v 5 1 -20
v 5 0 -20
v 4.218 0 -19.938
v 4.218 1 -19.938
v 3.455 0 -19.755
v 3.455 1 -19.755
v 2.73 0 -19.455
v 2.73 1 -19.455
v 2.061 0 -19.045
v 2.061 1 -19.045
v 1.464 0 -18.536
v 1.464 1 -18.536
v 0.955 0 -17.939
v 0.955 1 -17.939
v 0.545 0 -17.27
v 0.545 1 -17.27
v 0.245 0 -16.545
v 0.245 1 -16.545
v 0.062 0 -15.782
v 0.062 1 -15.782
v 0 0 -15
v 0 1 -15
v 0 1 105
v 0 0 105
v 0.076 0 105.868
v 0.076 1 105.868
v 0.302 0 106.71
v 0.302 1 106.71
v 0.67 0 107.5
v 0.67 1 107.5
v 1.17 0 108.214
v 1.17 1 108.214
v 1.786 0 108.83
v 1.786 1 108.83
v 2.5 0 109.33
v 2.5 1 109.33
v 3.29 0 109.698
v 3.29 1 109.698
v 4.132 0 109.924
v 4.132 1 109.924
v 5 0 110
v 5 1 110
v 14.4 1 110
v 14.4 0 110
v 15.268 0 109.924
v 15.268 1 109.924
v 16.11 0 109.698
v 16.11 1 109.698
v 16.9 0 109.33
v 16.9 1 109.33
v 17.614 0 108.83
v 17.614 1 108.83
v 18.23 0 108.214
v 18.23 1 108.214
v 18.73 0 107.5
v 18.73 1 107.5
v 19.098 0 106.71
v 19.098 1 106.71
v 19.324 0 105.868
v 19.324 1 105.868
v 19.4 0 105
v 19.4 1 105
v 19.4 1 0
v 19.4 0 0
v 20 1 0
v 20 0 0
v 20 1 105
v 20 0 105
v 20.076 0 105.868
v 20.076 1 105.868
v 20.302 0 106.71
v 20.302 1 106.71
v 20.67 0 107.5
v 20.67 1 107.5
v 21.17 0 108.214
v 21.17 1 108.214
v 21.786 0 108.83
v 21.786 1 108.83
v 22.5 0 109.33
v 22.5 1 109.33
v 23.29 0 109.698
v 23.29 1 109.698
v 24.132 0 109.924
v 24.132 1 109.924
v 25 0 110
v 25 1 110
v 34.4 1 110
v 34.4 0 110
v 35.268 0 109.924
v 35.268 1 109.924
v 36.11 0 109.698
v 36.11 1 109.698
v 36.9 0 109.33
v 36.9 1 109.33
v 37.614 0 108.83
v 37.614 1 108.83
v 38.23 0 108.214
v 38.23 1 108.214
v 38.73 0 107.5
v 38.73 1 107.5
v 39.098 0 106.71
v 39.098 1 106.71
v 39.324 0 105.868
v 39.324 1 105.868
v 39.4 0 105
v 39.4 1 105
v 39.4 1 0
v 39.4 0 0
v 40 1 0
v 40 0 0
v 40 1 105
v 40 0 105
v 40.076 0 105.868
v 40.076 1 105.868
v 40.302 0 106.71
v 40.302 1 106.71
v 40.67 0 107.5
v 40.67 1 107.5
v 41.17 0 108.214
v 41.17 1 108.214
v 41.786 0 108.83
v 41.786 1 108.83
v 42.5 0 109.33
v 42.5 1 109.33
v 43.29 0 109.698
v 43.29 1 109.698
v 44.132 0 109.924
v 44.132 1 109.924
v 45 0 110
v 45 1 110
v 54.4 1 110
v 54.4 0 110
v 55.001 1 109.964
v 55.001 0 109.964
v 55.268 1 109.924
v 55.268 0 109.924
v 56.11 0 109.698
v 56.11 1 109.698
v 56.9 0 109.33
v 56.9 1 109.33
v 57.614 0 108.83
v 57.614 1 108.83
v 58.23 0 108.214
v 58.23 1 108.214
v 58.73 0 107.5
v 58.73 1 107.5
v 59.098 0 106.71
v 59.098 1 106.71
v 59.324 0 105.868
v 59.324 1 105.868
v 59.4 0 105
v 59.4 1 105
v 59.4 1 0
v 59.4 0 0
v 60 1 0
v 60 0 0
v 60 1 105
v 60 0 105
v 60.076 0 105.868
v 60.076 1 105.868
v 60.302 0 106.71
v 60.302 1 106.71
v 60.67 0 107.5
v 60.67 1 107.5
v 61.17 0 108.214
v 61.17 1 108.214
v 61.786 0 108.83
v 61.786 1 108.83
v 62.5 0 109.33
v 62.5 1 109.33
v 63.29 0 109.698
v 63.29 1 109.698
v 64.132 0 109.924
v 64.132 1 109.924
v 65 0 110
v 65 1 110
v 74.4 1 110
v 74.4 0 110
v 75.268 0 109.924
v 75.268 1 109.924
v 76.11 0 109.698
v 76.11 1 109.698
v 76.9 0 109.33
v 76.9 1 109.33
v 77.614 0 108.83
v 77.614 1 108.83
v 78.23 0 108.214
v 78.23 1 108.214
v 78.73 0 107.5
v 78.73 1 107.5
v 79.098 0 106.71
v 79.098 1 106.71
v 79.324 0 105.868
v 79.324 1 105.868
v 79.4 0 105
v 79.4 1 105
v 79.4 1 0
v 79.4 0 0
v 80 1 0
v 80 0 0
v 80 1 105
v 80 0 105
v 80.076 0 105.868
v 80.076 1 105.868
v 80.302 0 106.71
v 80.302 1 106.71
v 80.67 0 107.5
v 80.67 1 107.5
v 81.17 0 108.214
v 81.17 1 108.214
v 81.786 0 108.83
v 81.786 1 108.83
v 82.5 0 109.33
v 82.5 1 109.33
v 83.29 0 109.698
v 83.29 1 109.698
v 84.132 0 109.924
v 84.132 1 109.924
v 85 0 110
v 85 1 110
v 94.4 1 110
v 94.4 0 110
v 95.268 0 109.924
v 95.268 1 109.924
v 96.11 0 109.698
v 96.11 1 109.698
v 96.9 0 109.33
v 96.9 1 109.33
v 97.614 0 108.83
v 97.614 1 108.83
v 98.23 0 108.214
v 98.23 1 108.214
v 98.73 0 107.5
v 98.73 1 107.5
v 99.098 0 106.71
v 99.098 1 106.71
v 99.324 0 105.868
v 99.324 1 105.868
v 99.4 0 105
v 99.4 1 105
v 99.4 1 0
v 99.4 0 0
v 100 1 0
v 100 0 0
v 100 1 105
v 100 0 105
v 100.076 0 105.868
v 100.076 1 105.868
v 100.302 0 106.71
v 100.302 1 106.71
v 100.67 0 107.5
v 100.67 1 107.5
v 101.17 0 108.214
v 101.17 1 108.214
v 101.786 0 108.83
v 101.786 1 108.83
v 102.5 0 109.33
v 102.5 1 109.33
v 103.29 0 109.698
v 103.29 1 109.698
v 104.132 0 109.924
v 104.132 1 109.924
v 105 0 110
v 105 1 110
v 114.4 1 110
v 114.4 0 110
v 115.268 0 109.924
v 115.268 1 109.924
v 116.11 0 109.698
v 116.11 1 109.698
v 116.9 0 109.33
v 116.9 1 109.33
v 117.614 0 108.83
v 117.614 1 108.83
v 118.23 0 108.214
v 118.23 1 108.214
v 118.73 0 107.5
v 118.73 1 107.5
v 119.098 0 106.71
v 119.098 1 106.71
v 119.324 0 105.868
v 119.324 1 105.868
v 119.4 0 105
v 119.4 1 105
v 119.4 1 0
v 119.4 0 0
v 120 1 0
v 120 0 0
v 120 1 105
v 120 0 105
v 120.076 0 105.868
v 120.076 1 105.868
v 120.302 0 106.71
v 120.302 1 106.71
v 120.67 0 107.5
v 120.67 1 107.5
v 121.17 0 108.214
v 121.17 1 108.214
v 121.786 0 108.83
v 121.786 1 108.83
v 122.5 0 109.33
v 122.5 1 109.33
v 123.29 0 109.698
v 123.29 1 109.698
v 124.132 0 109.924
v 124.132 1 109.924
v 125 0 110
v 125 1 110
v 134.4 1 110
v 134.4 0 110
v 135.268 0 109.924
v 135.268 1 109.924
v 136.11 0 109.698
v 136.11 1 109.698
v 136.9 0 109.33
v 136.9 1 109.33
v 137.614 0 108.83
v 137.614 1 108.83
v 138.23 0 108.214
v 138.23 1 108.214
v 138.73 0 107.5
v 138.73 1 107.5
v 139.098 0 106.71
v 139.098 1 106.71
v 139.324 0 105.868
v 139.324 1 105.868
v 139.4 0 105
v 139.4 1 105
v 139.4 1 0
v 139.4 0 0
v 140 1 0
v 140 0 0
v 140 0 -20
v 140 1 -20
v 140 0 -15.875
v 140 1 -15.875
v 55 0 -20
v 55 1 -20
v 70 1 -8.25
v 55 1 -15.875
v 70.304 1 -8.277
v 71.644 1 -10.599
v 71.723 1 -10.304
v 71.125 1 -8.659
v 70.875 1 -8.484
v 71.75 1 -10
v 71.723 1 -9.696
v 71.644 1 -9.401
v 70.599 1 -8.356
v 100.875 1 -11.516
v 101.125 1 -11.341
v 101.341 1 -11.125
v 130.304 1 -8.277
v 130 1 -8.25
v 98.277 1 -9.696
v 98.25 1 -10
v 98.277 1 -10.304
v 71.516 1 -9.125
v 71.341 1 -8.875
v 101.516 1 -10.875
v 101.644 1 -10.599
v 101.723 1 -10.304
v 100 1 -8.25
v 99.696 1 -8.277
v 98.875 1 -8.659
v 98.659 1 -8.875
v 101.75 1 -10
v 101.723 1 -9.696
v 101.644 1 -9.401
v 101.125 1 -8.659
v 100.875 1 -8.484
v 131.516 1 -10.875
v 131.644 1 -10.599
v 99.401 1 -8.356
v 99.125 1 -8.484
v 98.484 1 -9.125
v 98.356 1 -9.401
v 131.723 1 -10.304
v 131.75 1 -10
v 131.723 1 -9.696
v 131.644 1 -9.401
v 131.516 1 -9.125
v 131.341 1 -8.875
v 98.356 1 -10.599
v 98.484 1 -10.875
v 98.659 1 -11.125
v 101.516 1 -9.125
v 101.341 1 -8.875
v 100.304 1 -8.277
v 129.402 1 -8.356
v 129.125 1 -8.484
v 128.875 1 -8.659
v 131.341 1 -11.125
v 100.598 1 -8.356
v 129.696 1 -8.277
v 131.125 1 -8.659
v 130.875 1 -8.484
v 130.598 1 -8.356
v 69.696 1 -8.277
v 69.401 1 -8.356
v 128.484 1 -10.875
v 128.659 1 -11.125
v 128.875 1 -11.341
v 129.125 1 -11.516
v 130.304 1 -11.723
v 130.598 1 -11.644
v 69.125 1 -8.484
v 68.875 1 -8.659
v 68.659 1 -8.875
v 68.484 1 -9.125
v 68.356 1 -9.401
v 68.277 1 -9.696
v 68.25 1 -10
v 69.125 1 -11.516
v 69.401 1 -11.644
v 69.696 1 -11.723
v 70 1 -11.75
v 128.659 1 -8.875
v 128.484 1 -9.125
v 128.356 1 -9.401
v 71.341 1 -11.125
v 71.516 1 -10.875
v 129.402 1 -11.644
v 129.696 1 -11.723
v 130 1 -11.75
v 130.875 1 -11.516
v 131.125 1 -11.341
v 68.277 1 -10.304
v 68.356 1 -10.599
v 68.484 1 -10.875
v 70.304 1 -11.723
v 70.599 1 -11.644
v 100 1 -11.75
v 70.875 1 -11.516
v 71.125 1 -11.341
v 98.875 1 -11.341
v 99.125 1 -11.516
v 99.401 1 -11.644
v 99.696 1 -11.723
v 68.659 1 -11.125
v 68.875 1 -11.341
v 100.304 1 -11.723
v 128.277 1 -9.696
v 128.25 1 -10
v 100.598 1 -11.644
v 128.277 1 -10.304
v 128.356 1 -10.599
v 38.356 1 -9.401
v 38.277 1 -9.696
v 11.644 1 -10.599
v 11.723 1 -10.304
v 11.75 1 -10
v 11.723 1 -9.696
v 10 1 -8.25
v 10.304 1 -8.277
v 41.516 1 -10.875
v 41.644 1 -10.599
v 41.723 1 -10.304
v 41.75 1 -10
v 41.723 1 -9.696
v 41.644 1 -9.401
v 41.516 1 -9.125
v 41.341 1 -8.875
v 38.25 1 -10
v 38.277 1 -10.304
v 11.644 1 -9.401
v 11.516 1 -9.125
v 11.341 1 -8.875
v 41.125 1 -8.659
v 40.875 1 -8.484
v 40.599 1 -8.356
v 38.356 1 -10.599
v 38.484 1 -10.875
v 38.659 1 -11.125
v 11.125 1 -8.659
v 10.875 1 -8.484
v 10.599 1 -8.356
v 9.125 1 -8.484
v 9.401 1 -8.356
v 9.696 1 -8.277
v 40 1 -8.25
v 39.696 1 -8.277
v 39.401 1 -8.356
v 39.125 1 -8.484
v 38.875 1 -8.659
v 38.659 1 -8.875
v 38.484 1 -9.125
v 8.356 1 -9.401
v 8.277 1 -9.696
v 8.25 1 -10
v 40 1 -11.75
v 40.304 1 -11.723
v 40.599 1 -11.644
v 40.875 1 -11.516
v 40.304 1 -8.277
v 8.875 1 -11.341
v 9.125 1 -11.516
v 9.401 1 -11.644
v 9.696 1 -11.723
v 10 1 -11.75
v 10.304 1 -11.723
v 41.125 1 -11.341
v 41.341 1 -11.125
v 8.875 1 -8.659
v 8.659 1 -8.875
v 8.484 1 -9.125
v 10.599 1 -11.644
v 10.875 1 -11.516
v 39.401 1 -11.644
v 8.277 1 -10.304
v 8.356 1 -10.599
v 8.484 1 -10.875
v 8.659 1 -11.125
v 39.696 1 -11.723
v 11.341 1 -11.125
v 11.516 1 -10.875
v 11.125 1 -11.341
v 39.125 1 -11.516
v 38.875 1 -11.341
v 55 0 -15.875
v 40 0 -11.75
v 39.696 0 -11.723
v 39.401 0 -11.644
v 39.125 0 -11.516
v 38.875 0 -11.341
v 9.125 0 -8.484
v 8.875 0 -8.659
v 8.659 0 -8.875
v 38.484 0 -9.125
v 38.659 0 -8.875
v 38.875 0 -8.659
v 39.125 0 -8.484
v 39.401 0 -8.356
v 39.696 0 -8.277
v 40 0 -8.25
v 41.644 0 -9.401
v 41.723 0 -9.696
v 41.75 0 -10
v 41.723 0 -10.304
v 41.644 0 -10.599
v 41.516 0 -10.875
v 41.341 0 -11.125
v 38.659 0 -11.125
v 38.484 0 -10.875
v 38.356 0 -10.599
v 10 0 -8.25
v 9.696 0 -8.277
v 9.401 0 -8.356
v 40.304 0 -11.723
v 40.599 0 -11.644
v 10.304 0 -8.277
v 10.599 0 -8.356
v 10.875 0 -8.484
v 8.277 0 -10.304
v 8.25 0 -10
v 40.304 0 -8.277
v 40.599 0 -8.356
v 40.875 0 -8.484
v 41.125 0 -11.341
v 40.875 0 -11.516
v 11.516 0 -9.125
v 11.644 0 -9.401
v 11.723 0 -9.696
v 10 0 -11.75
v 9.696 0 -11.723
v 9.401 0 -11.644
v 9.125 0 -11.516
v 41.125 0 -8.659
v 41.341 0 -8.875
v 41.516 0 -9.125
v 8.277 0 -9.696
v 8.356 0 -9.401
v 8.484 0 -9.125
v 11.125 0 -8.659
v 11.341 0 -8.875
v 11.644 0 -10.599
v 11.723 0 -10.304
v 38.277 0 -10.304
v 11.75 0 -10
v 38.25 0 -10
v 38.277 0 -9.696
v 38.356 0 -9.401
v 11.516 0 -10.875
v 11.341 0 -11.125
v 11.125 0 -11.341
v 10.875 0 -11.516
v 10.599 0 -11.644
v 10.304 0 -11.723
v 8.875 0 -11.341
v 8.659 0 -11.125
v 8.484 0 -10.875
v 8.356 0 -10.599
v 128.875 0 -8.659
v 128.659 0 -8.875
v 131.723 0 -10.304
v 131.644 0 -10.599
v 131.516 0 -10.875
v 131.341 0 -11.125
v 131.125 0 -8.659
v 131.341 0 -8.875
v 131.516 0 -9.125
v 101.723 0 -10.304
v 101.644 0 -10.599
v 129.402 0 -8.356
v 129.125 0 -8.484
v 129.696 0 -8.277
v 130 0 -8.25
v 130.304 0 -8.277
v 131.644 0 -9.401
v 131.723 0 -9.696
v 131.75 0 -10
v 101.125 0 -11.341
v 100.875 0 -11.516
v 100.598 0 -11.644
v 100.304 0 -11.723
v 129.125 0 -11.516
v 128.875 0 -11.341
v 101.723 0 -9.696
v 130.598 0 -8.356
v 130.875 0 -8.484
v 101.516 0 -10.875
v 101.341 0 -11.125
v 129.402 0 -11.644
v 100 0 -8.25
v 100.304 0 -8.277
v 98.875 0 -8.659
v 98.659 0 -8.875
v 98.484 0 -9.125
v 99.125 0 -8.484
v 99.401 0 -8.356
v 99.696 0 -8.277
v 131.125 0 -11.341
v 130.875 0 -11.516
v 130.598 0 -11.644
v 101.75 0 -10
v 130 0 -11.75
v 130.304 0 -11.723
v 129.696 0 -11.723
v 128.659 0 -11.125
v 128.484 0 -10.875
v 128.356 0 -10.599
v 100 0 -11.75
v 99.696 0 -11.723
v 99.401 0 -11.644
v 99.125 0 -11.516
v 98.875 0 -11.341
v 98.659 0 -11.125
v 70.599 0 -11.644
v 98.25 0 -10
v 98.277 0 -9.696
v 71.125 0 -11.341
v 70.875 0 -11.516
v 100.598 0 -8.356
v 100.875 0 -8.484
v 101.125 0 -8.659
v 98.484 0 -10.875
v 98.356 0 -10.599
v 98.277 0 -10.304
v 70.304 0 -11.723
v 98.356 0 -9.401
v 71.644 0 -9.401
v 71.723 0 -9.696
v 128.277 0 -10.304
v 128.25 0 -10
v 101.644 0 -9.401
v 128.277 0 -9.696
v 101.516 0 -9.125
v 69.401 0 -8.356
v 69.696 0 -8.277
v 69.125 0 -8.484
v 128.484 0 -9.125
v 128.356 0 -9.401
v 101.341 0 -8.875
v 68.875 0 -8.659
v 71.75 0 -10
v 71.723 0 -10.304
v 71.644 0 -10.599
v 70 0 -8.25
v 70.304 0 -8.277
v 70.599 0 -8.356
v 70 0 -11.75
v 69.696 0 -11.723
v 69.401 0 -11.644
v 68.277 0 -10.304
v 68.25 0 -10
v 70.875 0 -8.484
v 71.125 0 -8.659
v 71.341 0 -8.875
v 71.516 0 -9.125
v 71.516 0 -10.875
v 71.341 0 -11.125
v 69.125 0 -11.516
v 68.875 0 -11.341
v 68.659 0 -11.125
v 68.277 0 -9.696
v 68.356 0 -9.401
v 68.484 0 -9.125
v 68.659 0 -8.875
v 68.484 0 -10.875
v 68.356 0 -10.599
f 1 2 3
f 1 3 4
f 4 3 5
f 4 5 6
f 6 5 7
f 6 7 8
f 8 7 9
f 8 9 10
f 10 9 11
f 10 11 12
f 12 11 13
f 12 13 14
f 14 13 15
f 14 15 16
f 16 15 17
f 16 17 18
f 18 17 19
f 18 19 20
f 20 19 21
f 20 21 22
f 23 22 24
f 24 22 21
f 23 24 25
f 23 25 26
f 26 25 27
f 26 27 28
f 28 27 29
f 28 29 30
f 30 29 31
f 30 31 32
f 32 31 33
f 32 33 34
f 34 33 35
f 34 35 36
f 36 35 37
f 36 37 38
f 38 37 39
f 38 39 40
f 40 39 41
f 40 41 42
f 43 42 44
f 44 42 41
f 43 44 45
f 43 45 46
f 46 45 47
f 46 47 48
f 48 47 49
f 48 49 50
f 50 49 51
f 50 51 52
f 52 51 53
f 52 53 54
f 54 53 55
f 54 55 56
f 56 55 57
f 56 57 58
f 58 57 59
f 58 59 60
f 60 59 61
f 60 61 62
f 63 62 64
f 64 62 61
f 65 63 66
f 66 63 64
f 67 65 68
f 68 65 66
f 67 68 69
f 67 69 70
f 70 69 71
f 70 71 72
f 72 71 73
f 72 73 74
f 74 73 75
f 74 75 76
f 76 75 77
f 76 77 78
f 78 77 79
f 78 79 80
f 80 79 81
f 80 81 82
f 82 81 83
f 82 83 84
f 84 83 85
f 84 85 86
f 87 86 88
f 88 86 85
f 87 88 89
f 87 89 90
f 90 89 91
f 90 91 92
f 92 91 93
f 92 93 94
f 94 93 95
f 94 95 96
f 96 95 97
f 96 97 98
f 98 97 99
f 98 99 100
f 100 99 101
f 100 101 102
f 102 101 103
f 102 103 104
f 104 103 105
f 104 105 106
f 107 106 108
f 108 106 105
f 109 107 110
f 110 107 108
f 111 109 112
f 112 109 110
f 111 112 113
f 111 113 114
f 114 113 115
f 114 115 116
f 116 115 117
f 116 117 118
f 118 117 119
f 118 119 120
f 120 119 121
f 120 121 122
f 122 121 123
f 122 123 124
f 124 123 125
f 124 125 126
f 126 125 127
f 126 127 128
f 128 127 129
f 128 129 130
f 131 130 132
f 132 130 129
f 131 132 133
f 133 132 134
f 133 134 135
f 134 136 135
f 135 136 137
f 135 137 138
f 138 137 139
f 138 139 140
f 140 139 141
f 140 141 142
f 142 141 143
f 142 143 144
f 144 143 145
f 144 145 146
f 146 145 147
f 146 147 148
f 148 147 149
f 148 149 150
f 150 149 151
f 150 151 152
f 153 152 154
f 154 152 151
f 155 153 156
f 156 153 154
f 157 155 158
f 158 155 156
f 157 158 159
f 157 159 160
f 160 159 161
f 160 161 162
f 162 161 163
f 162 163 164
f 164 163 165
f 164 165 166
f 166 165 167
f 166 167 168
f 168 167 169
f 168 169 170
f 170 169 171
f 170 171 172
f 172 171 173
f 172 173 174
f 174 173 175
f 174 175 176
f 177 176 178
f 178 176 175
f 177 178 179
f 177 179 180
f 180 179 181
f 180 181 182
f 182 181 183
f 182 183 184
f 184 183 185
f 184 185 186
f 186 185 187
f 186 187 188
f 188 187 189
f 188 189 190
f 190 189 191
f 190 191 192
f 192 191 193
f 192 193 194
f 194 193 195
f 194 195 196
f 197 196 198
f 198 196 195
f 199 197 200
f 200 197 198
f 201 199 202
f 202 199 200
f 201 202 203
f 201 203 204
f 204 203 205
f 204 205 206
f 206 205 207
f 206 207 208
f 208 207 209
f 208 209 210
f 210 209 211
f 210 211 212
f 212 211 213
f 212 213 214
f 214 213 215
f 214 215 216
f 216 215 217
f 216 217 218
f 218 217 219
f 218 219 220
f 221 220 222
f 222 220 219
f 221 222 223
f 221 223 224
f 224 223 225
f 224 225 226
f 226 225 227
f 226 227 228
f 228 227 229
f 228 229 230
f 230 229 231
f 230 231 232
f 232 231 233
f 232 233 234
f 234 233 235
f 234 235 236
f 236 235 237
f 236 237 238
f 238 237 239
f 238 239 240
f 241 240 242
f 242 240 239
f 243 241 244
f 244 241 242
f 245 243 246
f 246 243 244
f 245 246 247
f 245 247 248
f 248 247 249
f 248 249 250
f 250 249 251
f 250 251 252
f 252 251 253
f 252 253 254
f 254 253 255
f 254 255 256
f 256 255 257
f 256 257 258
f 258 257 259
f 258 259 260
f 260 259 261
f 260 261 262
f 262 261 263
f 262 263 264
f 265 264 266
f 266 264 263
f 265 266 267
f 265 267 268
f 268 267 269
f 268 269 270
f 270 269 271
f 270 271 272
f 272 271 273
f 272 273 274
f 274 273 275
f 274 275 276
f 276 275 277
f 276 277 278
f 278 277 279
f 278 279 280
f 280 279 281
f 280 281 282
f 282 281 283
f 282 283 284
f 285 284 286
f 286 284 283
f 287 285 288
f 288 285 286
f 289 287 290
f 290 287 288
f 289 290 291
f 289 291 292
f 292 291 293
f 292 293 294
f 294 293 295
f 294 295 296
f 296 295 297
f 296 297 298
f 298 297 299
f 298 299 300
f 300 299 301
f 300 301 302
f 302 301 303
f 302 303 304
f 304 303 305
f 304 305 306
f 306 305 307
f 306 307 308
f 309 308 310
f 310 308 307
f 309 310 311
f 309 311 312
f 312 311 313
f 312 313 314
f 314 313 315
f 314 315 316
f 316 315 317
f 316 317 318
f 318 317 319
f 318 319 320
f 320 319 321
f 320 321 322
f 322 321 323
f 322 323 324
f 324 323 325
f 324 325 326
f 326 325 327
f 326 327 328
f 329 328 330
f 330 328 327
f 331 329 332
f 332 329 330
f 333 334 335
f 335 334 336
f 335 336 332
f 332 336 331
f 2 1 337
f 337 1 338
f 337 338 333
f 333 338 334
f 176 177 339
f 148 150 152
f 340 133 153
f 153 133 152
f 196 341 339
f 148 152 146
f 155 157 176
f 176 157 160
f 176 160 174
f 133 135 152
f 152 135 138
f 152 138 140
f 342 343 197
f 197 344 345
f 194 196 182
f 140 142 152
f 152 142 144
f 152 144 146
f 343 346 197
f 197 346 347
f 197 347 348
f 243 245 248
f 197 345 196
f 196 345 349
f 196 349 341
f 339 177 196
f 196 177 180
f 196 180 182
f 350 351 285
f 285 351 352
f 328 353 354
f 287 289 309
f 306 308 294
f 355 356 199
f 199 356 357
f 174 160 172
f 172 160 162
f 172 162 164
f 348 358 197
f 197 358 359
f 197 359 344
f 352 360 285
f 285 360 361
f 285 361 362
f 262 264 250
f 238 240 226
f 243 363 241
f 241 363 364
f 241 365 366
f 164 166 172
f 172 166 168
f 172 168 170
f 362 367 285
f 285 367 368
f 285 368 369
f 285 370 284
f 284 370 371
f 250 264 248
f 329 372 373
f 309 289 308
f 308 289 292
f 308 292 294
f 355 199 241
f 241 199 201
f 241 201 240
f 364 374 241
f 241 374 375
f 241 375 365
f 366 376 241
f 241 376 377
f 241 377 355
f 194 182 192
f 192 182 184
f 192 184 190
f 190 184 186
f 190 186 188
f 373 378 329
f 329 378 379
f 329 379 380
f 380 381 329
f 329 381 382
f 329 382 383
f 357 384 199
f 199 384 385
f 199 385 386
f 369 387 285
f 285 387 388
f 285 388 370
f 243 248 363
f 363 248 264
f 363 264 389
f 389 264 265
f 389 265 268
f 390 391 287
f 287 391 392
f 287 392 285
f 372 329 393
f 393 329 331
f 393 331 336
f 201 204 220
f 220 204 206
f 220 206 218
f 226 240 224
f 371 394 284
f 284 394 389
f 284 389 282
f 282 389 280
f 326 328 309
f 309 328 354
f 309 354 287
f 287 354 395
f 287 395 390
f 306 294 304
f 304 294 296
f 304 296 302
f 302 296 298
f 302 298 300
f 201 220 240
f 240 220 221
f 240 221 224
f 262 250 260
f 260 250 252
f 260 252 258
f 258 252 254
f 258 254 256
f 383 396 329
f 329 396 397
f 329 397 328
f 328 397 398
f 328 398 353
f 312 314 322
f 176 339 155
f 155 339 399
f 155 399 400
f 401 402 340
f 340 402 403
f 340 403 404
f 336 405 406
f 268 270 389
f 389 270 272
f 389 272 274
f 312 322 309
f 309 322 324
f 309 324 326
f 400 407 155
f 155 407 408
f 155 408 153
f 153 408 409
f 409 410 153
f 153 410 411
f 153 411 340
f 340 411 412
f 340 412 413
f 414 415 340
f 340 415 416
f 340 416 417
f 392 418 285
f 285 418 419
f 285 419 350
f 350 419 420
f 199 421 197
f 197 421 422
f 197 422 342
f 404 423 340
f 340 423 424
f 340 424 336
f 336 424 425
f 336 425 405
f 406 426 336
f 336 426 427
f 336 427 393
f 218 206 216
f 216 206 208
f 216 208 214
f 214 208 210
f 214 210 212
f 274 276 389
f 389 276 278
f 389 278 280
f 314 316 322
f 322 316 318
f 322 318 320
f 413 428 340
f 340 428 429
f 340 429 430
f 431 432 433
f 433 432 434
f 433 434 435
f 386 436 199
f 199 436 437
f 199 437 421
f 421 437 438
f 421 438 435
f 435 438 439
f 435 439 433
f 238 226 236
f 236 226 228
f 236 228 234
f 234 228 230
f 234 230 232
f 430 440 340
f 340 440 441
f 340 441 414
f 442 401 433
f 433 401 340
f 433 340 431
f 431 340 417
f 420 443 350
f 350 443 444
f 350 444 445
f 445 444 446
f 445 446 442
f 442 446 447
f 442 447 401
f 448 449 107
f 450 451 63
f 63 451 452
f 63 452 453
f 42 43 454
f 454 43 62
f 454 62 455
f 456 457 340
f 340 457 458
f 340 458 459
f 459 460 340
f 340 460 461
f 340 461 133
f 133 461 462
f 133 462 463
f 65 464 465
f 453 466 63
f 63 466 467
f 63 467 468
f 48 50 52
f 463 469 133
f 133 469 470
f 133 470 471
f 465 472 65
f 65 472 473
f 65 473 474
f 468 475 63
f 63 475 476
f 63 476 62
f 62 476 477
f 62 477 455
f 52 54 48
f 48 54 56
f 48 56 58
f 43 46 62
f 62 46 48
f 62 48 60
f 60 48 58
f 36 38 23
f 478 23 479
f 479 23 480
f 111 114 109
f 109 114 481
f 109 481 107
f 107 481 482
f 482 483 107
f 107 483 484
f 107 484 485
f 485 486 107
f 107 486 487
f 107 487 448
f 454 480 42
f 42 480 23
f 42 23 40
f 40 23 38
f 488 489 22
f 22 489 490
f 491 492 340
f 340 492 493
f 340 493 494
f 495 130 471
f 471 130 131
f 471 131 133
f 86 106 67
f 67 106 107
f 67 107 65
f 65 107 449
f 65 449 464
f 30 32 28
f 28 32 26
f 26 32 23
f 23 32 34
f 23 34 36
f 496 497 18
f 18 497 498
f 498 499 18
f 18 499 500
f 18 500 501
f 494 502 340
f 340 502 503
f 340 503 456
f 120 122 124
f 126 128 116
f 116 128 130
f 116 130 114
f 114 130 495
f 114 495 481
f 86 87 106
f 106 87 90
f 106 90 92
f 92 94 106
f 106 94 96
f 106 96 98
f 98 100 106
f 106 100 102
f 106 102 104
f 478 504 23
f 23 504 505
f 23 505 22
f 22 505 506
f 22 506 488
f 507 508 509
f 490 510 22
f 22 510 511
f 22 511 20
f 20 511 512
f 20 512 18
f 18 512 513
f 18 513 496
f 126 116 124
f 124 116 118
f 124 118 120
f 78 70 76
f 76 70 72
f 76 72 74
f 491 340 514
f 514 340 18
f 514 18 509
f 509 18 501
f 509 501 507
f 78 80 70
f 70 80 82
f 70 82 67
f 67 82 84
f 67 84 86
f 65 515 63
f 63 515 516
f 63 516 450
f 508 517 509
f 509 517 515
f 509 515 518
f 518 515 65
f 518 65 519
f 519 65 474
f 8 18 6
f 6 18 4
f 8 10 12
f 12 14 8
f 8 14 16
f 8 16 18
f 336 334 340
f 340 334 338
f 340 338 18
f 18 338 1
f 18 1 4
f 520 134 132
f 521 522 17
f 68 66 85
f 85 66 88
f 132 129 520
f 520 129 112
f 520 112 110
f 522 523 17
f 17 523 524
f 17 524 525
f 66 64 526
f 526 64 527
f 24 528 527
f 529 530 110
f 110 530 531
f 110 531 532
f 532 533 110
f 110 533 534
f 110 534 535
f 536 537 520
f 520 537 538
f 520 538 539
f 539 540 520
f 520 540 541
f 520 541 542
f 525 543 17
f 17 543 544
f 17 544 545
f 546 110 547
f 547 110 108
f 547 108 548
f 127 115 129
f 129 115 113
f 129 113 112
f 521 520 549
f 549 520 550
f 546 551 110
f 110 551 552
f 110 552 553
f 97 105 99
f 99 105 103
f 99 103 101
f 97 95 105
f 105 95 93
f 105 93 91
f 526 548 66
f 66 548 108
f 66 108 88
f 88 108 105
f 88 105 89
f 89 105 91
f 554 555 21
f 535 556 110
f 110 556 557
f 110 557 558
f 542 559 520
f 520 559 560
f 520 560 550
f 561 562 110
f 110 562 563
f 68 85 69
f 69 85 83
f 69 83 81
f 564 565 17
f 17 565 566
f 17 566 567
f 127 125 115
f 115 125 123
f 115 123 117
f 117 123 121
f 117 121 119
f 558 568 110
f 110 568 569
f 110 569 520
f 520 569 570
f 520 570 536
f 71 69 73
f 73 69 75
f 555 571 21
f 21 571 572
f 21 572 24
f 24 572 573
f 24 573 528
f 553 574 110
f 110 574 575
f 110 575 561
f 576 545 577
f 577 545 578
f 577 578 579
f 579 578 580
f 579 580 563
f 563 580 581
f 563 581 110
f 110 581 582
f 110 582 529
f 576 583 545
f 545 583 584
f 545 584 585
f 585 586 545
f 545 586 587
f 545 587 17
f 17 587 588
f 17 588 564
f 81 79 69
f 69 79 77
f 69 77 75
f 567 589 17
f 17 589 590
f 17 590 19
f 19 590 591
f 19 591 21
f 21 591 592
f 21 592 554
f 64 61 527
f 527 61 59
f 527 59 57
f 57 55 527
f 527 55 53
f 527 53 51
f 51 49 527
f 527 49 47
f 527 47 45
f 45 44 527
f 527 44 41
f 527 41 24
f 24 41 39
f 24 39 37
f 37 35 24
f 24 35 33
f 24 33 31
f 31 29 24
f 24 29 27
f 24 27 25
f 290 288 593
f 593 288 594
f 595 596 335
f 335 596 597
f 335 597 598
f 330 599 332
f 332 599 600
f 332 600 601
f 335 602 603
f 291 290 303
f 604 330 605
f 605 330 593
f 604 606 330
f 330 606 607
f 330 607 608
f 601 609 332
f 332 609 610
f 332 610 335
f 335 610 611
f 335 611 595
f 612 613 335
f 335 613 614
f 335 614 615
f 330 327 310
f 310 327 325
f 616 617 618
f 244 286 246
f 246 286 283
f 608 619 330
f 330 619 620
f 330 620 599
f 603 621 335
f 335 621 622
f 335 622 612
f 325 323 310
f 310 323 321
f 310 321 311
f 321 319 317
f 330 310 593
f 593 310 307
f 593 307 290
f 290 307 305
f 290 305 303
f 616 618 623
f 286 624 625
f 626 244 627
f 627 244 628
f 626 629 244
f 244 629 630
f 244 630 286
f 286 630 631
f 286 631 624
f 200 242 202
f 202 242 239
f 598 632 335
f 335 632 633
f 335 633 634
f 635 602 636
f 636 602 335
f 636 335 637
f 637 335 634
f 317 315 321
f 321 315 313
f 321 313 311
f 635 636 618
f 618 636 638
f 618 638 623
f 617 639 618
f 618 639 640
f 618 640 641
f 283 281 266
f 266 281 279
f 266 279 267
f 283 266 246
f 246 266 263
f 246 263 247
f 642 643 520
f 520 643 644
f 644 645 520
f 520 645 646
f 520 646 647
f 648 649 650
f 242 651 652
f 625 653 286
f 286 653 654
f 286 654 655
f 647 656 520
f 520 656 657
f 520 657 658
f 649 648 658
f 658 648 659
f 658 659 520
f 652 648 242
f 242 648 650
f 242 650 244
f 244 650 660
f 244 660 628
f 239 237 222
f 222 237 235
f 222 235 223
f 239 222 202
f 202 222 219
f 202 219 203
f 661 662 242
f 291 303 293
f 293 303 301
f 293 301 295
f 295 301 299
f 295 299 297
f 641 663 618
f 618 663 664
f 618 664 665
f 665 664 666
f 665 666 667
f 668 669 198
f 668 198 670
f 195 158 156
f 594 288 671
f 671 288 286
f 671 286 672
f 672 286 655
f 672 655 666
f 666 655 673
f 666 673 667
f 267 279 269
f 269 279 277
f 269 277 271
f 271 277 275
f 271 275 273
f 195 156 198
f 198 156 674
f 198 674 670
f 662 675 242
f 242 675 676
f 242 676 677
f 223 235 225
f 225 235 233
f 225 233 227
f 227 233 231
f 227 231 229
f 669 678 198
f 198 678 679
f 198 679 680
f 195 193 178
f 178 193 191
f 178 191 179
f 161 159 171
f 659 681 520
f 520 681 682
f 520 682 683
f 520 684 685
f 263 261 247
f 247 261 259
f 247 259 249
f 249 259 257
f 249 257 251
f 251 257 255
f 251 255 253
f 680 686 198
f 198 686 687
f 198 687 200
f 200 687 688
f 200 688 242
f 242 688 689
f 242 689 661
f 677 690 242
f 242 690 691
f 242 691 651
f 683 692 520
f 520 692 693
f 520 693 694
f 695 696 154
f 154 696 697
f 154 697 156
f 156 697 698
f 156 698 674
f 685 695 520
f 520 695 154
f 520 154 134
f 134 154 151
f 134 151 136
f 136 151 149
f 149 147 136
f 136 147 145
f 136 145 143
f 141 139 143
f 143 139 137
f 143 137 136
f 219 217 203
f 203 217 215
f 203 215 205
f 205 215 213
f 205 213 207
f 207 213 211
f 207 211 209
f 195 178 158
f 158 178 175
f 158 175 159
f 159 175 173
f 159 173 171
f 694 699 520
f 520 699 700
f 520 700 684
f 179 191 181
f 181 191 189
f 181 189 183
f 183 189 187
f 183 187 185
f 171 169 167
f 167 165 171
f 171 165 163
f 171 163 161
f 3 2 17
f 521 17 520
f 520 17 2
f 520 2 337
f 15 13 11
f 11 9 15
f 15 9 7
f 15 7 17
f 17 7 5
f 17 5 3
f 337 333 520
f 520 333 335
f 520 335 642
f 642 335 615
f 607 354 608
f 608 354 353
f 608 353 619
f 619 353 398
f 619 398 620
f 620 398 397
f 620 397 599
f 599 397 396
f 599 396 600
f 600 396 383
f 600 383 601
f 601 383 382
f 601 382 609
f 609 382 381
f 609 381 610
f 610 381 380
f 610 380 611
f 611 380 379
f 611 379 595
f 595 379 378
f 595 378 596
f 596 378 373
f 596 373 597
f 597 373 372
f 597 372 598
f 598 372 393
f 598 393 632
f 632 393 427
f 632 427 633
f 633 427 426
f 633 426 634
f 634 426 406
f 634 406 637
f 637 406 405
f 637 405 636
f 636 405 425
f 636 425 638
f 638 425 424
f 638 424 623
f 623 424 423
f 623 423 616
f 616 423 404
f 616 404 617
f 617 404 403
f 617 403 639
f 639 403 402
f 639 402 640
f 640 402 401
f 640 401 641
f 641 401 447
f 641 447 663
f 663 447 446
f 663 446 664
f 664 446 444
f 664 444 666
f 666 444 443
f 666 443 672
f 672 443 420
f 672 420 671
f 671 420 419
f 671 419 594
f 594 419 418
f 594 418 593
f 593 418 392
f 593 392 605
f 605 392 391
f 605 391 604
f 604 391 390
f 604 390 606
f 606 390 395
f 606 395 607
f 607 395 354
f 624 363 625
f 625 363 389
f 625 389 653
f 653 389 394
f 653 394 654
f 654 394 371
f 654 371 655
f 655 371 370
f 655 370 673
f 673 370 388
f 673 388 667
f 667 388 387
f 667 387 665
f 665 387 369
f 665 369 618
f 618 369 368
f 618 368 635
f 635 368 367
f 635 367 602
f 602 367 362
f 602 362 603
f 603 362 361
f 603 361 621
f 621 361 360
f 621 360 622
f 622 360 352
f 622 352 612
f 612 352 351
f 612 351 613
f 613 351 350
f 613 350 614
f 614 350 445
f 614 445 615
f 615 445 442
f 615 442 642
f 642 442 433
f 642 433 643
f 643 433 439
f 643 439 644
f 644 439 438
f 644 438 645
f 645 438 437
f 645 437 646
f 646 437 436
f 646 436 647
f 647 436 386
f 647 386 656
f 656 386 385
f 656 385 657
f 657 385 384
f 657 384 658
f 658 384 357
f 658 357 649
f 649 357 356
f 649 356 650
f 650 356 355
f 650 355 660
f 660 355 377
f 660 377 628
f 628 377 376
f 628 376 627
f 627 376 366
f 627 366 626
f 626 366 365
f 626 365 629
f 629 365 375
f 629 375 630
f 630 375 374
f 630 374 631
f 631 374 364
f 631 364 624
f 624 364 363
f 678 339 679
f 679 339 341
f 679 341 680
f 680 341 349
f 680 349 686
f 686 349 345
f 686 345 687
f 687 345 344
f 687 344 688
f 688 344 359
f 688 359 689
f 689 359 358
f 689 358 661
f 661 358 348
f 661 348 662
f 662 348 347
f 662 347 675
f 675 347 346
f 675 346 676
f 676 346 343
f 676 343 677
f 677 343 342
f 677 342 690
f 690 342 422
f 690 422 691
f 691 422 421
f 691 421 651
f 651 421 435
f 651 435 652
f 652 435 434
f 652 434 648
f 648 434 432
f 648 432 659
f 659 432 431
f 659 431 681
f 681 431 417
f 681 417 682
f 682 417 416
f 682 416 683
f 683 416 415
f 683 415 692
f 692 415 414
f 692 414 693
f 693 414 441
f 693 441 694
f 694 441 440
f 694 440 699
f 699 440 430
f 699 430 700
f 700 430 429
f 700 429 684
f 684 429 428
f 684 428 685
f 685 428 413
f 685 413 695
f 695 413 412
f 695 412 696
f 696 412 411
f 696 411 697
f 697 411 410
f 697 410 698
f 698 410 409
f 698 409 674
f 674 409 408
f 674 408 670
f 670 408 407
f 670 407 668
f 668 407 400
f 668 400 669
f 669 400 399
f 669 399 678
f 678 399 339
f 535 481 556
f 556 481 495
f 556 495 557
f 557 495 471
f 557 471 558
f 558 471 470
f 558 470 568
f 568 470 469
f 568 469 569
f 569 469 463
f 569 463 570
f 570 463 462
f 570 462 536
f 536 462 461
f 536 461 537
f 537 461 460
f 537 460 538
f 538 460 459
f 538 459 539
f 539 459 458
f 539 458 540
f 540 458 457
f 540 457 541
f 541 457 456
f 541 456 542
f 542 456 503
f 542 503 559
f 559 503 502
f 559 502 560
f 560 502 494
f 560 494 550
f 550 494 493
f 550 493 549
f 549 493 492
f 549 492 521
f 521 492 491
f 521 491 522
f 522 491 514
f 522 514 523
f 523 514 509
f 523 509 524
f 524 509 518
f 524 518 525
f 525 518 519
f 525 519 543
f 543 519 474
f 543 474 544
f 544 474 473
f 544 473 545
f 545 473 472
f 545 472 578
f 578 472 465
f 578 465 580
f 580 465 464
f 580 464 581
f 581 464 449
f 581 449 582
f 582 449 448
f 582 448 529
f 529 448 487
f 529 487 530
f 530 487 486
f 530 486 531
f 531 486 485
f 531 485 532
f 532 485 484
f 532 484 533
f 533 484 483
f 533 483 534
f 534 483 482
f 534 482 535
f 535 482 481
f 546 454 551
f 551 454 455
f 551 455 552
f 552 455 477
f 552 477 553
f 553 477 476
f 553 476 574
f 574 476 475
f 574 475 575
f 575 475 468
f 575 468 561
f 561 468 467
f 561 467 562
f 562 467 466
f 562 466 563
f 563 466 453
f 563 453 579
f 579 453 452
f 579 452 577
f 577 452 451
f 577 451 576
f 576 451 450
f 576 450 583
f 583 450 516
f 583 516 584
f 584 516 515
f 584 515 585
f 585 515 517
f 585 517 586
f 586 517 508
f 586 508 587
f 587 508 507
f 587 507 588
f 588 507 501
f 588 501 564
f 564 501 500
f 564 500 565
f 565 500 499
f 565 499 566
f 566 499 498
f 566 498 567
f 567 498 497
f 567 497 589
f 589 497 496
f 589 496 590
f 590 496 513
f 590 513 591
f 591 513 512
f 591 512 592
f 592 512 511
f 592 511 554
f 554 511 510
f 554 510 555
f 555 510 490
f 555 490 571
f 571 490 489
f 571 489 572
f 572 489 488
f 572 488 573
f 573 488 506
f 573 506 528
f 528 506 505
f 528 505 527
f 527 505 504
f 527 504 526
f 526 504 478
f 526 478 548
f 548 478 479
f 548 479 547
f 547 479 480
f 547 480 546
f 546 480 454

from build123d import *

# Parameters (mm, degrees)
BOSS_EXTRUDE1_DEPTH = 1
CUT_EXTRUDE1_REACH  = 3
SKETCH2_R           = 1.75


with BuildPart() as part:
    # Sketch1 → Boss-Extrude1 (new body)
    with BuildSketch(Plane(origin=(0, 0, 0), x_dir=(1, 0, 0), z_dir=(0, 1, 0))):
        with BuildLine():
            Line((39.4, -105), (39.4, 0))
            Line((39.4, 0), (40, 0))
            Line((40, 0), (40, -105))
            ThreePointArc((40, -105), (41.464466094, -108.535533906), (45, -110))
            Line((45, -110), (54.4, -110))
            ThreePointArc((54.4, -110), (57.935533906, -108.535533906), (59.4, -105))
            Line((59.4, -105), (59.4, 0))
            Line((59.4, 0), (60, 0))
            Line((60, 0), (60, -105))
            ThreePointArc((60, -105), (61.464466094, -108.535533906), (65, -110))
            Line((65, -110), (74.4, -110))
            ThreePointArc((74.4, -110), (77.935533906, -108.535533906), (79.4, -105))
            Line((79.4, -105), (79.4, 0))
            Line((79.4, 0), (80, 0))
            Line((80, 0), (80, -105))
            ThreePointArc((80, -105), (81.464466094, -108.535533906), (85, -110))
            Line((85, -110), (94.4, -110))
            ThreePointArc((94.4, -110), (97.935533906, -108.535533906), (99.4, -105))
            Line((99.4, -105), (99.4, 0))
            Line((99.4, 0), (100, 0))
            Line((100, 0), (100, -105))
            ThreePointArc((100, -105), (101.464466094, -108.535533906), (105, -110))
            Line((105, -110), (114.4, -110))
            ThreePointArc((114.4, -110), (117.935533906, -108.535533906), (119.4, -105))
            Line((119.4, -105), (119.4, 0))
            Line((119.4, 0), (120, 0))
            Line((120, 0), (120, -105))
            ThreePointArc((120, -105), (121.464466094, -108.535533906), (125, -110))
            Line((125, -110), (134.4, -110))
            ThreePointArc((134.4, -110), (137.935533906, -108.535533906), (139.4, -105))
            Line((139.4, -105), (139.4, 0))
            Line((139.4, 0), (140, 0))
            Line((140, 0), (140, 20))
            Line((140, 20), (5, 20))
            ThreePointArc((5, 20), (1.464466094, 18.535533906), (0, 15))
            Line((0, 15), (0, -105))
            ThreePointArc((0, -105), (1.464466094, -108.535533906), (5, -110))
            Line((5, -110), (14.4, -110))
            ThreePointArc((14.4, -110), (17.935533906, -108.535533906), (19.4, -105))
            Line((19.4, -105), (19.4, 0))
            Line((19.4, 0), (20, 0))
            Line((20, 0), (20, -105))
            ThreePointArc((20, -105), (21.464466094, -108.535533906), (25, -110))
            Line((25, -110), (34.4, -110))
            ThreePointArc((34.4, -110), (37.935533906, -108.535533906), (39.4, -105))
        make_face()
    extrude(amount=BOSS_EXTRUDE1_DEPTH)

    # Sketch2 → Cut-Extrude1 (cut, up to next)
    with BuildSketch(Plane(origin=(0, 1, 0), x_dir=(1, 0, 0), z_dir=(0, 1, 0)), mode=Mode.PRIVATE) as cut_extrude1_sk1:
        with Locations((10, 10)):
            Circle(SKETCH2_R)
    cut_extrude1_tool1 = extrude(cut_extrude1_sk1.sketch, amount=-CUT_EXTRUDE1_REACH, mode=Mode.PRIVATE) & part.part
    add(cut_extrude1_tool1.solids().sort_by_distance((10, 1, -10))[0], mode=Mode.SUBTRACT)
    # Sketch2 → Cut-Extrude1 (cut, up to next)
    with BuildSketch(Plane(origin=(0, 1, 0), x_dir=(1, 0, 0), z_dir=(0, 1, 0)), mode=Mode.PRIVATE) as cut_extrude1_sk2:
        with Locations((40, 10)):
            Circle(SKETCH2_R)
    cut_extrude1_tool2 = extrude(cut_extrude1_sk2.sketch, amount=-CUT_EXTRUDE1_REACH, mode=Mode.PRIVATE) & part.part
    add(cut_extrude1_tool2.solids().sort_by_distance((40, 1, -10))[0], mode=Mode.SUBTRACT)
    # Sketch2 → Cut-Extrude1 (cut, up to next)
    with BuildSketch(Plane(origin=(0, 1, 0), x_dir=(1, 0, 0), z_dir=(0, 1, 0)), mode=Mode.PRIVATE) as cut_extrude1_sk3:
        with Locations((70, 10)):
            Circle(SKETCH2_R)
    cut_extrude1_tool3 = extrude(cut_extrude1_sk3.sketch, amount=-CUT_EXTRUDE1_REACH, mode=Mode.PRIVATE) & part.part
    add(cut_extrude1_tool3.solids().sort_by_distance((70, 1, -10))[0], mode=Mode.SUBTRACT)
    # Sketch2 → Cut-Extrude1 (cut, up to next)
    with BuildSketch(Plane(origin=(0, 1, 0), x_dir=(1, 0, 0), z_dir=(0, 1, 0)), mode=Mode.PRIVATE) as cut_extrude1_sk4:
        with Locations((100, 10)):
            Circle(SKETCH2_R)
    cut_extrude1_tool4 = extrude(cut_extrude1_sk4.sketch, amount=-CUT_EXTRUDE1_REACH, mode=Mode.PRIVATE) & part.part
    add(cut_extrude1_tool4.solids().sort_by_distance((100, 1, -10))[0], mode=Mode.SUBTRACT)
    # Sketch2 → Cut-Extrude1 (cut, up to next)
    with BuildSketch(Plane(origin=(0, 1, 0), x_dir=(1, 0, 0), z_dir=(0, 1, 0)), mode=Mode.PRIVATE) as cut_extrude1_sk5:
        with Locations((130, 10)):
            Circle(SKETCH2_R)
    cut_extrude1_tool5 = extrude(cut_extrude1_sk5.sketch, amount=-CUT_EXTRUDE1_REACH, mode=Mode.PRIVATE) & part.part
    add(cut_extrude1_tool5.solids().sort_by_distance((130, 1, -10))[0], mode=Mode.SUBTRACT)


solid = part.part
